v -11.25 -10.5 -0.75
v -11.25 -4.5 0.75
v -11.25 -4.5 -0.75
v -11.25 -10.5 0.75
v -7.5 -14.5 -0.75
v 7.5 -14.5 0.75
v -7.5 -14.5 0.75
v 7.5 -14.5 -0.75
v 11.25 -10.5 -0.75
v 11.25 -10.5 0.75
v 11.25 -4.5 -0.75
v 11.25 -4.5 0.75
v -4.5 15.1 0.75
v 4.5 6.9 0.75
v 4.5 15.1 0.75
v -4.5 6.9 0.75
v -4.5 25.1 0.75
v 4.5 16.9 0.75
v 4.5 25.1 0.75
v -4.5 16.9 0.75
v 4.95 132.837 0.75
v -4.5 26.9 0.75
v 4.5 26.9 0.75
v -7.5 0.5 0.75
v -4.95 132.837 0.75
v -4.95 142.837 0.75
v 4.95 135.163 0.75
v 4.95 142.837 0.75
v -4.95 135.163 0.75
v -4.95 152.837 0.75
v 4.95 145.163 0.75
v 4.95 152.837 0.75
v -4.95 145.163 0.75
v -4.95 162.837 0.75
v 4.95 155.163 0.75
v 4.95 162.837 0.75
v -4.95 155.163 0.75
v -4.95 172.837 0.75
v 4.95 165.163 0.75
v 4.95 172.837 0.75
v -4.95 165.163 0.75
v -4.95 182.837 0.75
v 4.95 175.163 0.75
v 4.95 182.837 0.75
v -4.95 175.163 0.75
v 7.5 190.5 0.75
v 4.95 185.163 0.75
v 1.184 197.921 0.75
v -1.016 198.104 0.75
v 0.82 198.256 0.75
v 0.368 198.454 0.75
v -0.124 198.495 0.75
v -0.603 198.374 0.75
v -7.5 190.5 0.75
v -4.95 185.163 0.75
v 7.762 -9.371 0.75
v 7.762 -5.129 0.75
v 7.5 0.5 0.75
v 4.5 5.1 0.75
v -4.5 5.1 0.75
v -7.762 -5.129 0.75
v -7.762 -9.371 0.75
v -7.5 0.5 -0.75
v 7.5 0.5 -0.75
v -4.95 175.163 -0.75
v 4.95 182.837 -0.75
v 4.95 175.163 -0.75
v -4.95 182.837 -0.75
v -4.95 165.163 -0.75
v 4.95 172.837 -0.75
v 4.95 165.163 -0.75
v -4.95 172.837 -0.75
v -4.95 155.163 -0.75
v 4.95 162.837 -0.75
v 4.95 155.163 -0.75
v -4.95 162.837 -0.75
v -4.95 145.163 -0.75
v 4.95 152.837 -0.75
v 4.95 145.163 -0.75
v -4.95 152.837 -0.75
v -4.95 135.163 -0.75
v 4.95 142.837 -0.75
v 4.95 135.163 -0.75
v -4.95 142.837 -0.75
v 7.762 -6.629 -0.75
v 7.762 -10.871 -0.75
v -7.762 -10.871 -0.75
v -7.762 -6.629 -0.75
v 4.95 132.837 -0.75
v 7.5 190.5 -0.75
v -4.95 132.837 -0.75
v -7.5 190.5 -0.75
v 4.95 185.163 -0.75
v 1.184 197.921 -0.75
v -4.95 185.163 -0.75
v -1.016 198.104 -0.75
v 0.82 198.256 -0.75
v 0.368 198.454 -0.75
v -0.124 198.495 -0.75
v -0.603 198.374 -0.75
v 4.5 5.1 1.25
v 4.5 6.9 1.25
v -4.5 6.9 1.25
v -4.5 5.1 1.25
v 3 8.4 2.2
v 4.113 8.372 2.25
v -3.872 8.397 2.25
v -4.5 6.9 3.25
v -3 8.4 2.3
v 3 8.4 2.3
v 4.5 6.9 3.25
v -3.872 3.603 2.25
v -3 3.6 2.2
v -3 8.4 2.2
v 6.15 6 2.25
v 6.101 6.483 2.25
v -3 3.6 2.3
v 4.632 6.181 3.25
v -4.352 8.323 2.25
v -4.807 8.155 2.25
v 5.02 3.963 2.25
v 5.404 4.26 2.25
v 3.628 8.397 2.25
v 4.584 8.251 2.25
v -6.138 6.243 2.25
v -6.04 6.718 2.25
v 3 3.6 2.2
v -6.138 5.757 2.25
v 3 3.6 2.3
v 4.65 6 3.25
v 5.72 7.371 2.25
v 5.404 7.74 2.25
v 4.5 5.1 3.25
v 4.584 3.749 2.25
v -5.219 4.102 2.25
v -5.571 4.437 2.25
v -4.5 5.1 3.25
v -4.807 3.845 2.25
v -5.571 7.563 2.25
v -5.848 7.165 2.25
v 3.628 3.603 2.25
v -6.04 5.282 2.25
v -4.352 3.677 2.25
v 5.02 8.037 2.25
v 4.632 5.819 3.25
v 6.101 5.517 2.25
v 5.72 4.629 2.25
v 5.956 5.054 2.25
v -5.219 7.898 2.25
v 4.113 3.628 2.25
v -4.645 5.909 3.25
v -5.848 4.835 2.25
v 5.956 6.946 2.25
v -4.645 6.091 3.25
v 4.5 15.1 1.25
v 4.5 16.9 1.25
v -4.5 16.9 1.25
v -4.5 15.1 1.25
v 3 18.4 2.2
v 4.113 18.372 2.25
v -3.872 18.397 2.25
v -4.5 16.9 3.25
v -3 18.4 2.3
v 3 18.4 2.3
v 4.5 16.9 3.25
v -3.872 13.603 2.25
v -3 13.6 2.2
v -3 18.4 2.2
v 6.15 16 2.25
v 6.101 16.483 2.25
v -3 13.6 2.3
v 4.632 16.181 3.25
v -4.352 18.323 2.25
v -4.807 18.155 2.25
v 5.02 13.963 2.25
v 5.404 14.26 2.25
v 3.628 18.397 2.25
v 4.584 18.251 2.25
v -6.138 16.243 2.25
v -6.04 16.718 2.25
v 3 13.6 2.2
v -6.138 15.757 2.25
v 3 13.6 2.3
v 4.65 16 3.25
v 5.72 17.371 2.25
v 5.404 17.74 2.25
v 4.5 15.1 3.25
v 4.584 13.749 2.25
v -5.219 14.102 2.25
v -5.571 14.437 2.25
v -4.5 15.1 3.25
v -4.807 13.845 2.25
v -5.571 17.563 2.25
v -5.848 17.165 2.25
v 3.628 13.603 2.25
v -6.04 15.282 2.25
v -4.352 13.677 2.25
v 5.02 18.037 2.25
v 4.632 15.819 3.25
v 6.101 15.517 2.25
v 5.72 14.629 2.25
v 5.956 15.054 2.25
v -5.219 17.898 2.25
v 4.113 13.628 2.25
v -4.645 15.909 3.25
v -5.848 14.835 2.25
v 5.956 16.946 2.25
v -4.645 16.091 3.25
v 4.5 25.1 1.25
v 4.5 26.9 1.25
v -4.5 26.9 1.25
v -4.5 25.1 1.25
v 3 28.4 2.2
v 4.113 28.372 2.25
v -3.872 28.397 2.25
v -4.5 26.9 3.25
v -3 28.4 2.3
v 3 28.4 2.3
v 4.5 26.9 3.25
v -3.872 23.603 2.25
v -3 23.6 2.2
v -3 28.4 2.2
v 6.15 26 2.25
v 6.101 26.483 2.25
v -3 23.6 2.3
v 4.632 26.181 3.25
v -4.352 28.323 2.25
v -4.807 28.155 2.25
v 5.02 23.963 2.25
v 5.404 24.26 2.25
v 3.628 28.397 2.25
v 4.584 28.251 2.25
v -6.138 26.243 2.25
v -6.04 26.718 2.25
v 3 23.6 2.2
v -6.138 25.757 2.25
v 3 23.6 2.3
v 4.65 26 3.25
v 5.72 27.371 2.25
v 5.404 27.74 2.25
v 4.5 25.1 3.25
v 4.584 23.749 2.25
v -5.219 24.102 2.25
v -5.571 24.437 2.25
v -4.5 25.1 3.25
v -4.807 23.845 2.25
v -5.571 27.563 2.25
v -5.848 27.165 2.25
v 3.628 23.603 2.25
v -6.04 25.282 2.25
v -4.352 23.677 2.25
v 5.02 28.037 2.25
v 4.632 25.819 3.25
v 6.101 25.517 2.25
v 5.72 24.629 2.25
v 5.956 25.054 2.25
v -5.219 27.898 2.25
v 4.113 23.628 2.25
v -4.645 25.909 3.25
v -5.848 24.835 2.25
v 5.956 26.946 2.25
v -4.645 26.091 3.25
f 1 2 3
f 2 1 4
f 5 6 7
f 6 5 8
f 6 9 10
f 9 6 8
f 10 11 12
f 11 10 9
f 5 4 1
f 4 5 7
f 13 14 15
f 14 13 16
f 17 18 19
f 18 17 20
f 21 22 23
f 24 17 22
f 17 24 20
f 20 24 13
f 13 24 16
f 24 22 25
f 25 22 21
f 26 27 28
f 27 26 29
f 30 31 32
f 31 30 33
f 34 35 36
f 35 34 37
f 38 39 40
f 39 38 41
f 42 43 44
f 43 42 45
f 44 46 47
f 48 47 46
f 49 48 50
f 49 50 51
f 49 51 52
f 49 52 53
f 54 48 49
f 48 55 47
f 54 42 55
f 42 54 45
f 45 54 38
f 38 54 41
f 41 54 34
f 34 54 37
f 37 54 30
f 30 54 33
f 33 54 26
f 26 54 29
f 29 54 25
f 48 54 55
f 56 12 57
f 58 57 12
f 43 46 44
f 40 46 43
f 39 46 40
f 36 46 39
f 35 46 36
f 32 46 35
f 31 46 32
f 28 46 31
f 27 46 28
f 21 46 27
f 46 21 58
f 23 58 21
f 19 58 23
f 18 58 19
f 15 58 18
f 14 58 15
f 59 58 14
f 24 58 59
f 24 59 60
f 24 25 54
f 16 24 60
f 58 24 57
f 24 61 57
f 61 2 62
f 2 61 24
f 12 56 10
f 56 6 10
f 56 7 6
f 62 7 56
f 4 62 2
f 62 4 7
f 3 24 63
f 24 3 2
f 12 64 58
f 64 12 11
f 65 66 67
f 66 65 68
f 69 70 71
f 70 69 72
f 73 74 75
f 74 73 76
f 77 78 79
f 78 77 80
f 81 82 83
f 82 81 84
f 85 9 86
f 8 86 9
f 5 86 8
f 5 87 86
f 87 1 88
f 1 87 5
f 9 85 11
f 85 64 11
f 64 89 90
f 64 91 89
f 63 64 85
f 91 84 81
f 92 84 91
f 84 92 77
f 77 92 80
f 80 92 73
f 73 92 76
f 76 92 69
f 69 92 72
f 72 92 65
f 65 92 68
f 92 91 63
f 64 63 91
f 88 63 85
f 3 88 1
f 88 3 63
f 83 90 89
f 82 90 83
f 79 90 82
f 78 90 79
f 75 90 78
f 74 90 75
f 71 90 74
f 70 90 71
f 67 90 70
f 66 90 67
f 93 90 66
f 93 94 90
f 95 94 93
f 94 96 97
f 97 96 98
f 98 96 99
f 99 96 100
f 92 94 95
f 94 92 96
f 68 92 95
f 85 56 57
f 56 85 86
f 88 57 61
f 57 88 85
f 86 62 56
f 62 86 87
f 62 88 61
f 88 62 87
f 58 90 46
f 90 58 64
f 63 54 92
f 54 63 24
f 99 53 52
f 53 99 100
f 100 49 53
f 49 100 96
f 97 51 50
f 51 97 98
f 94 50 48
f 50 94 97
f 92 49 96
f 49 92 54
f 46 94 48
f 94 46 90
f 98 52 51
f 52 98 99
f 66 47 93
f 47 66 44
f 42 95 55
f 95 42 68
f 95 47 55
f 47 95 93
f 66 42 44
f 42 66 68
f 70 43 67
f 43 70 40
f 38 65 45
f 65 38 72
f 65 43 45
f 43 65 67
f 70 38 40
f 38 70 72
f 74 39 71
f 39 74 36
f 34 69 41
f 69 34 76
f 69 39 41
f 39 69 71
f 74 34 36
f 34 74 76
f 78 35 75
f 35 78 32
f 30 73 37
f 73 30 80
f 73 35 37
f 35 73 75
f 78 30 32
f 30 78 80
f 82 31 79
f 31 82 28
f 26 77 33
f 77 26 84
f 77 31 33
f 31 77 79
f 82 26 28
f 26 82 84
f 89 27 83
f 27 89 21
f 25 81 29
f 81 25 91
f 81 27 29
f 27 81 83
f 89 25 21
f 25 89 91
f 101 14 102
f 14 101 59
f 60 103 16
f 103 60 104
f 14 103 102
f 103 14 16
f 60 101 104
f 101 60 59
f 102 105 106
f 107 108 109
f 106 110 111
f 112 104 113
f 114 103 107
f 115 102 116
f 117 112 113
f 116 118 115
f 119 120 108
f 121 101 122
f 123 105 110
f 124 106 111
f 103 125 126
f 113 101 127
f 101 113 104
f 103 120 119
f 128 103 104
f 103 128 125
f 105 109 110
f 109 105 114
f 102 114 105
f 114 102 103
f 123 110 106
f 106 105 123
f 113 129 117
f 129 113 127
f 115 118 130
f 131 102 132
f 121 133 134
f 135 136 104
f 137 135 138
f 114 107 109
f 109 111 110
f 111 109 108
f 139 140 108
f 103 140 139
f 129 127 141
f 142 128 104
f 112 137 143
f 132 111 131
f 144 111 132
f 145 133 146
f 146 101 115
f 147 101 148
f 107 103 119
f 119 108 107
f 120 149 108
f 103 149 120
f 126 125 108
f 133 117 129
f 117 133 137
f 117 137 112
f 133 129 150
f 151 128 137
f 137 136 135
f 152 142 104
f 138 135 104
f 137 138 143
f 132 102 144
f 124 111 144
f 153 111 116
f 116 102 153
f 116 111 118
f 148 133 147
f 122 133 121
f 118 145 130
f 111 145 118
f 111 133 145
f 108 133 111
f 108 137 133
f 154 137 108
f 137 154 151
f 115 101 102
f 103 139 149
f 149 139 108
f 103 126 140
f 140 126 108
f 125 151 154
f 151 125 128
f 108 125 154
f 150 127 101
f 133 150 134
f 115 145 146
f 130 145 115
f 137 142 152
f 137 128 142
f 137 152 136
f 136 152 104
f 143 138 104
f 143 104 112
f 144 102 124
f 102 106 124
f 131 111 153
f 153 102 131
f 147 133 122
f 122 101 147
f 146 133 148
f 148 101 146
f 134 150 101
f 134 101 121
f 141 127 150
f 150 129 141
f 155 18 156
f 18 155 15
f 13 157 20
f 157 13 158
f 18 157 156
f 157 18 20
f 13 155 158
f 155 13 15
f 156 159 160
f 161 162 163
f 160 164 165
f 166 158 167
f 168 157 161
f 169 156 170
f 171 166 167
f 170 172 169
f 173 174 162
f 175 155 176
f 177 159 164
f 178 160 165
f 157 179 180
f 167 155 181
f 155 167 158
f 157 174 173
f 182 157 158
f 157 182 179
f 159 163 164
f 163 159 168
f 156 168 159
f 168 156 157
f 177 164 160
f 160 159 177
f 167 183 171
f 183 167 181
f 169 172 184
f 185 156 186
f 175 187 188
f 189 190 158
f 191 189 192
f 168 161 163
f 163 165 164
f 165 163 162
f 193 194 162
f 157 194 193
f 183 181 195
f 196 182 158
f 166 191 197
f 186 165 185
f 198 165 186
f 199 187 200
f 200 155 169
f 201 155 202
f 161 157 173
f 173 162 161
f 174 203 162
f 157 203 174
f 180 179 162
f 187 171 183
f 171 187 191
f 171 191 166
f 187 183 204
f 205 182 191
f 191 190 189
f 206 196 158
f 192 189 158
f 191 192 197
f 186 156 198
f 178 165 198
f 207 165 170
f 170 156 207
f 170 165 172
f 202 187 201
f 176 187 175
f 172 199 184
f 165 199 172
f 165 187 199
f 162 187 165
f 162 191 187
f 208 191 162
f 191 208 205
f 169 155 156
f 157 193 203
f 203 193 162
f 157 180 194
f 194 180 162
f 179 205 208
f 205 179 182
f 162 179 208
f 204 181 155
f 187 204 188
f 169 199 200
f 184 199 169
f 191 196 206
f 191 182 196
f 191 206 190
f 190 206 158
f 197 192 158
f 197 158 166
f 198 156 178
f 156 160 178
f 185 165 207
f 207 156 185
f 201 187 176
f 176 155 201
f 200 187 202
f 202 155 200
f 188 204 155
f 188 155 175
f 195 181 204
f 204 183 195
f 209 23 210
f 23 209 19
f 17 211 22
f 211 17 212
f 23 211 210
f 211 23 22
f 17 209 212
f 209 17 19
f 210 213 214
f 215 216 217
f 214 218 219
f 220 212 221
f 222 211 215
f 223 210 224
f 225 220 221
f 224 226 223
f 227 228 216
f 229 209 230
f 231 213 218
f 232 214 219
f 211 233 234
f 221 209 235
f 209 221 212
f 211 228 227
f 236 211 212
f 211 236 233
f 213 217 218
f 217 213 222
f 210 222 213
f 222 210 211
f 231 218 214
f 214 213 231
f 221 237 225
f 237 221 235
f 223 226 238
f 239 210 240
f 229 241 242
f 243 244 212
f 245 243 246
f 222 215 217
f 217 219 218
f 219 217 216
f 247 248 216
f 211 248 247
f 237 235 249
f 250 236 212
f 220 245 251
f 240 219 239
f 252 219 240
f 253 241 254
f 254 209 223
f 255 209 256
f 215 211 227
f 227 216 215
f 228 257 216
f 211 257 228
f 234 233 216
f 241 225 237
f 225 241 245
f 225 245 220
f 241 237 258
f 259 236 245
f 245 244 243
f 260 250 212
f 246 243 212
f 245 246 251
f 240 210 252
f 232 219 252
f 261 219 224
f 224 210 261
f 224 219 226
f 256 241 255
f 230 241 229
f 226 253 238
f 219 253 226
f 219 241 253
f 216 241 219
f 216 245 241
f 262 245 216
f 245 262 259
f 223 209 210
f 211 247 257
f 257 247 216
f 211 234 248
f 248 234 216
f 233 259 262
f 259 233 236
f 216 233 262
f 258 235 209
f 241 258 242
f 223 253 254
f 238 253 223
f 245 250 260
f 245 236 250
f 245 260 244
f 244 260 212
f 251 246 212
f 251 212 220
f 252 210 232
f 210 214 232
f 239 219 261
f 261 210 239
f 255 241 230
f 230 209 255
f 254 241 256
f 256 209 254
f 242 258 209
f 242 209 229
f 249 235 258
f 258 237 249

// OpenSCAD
strap_length = 200; // 20cm 
strap_width = 15; // 1.5cm
strap_thickness = 1.5;

button_width = strap_width * 0.6;
button_thickness = button_width / 5;
button_leg_height = 2.5;
button_head_height = 2;
button_head_offset = 1.5;
button_space = 10;
buttons = 3;
button_holes = 6;

head_length = strap_width;

$fs = $preview ? 1 : 0.5;
$fa = $preview ? 10 : 5;

anti_warp = .15;
filament_width = 1.75;

function anti_warp_widen(v) = v + (filament_width * anti_warp) * 2;
function anti_warp_shrink(v) = v - (filament_width * anti_warp) * 2;

module tail() {
}

module button_head() {
	hull() {
		cube([button_width, button_thickness, button_head_height], center = true);
		cube([button_width - button_head_offset * 2, button_thickness + 2 * button_head_offset, 0.1], center = true);
		translate([button_width / 2 - button_head_offset / 2, 0]) cylinder(h = button_head_height / 2, d1 = button_thickness + 2 * button_head_offset, d2 = button_thickness);
		translate([-button_width / 2 + button_head_offset / 2, 0]) cylinder(h = button_head_height / 2, d1 = button_thickness + 2 * button_head_offset, d2 = button_thickness);
	}
}

module button_leg() {
	cube([button_width, button_thickness, button_leg_height], center = true);
}

module button() {
	translate([0, 0, button_leg_height / 2]) {
		button_leg();
		translate([0, 0, button_head_height / 2]) button_head();
	}
}

module button_hole() {
	cube([anti_warp_widen(button_width + button_head_offset * 0.25), anti_warp_widen(button_thickness), button_leg_height + button_head_height + strap_thickness], center = true);
}

module generate_buttons(count) {
	assert(count != undef);
	for (i = [0:count-1]) {
		translate([0, 10 * i, 0]) button();
	}
}

module generate_button_holes(count) {
	assert(count != undef);
	for (i = [0:count-1]) {
		translate([0, -10 * i, 0]) button_hole();
	}
}

module tailtip() {
	hull() {
		cube([strap_width, 1, strap_thickness], center = true);
		translate([0, strap_length * 0.05 - strap_width / 5]) cylinder(h = strap_thickness, d = strap_width / 5, center = true);
	}
}

module tail() {
	difference() {
		union() {
			translate([0, strap_length * 0.95 / 2]) cube([strap_width, strap_length * 0.95, strap_thickness], center = true);
			translate([0, strap_length * 0.95]) tailtip();
		}
		translate([0, strap_length * 0.92]) generate_button_holes(button_holes);
	}
	translate([0, strap_length * 0.03]) generate_buttons(buttons);
}

module strap_hole() {
	cube([anti_warp_widen(strap_width), strap_thickness * 2, head_length], center = true);
}

module head() {
	difference() {
		hull() {
			cube([strap_width, 1, strap_thickness], center = true);
			translate([0, strap_width * 1/3]) cube([strap_width * 1.5, 1, strap_thickness], center = true);
			translate([0, strap_width * 2/3]) cube([strap_width * 1.5, 1, strap_thickness], center = true);
			translate([0, head_length - 1]) cube([strap_width, 1, strap_thickness], center = true);
		}
		translate([0, head_length / 2 + 0.5]) rotate([45, 0]) strap_hole();
	}
}

module main() {
	rotate([0, 0, 180]) head();
	tail();
}

main();
